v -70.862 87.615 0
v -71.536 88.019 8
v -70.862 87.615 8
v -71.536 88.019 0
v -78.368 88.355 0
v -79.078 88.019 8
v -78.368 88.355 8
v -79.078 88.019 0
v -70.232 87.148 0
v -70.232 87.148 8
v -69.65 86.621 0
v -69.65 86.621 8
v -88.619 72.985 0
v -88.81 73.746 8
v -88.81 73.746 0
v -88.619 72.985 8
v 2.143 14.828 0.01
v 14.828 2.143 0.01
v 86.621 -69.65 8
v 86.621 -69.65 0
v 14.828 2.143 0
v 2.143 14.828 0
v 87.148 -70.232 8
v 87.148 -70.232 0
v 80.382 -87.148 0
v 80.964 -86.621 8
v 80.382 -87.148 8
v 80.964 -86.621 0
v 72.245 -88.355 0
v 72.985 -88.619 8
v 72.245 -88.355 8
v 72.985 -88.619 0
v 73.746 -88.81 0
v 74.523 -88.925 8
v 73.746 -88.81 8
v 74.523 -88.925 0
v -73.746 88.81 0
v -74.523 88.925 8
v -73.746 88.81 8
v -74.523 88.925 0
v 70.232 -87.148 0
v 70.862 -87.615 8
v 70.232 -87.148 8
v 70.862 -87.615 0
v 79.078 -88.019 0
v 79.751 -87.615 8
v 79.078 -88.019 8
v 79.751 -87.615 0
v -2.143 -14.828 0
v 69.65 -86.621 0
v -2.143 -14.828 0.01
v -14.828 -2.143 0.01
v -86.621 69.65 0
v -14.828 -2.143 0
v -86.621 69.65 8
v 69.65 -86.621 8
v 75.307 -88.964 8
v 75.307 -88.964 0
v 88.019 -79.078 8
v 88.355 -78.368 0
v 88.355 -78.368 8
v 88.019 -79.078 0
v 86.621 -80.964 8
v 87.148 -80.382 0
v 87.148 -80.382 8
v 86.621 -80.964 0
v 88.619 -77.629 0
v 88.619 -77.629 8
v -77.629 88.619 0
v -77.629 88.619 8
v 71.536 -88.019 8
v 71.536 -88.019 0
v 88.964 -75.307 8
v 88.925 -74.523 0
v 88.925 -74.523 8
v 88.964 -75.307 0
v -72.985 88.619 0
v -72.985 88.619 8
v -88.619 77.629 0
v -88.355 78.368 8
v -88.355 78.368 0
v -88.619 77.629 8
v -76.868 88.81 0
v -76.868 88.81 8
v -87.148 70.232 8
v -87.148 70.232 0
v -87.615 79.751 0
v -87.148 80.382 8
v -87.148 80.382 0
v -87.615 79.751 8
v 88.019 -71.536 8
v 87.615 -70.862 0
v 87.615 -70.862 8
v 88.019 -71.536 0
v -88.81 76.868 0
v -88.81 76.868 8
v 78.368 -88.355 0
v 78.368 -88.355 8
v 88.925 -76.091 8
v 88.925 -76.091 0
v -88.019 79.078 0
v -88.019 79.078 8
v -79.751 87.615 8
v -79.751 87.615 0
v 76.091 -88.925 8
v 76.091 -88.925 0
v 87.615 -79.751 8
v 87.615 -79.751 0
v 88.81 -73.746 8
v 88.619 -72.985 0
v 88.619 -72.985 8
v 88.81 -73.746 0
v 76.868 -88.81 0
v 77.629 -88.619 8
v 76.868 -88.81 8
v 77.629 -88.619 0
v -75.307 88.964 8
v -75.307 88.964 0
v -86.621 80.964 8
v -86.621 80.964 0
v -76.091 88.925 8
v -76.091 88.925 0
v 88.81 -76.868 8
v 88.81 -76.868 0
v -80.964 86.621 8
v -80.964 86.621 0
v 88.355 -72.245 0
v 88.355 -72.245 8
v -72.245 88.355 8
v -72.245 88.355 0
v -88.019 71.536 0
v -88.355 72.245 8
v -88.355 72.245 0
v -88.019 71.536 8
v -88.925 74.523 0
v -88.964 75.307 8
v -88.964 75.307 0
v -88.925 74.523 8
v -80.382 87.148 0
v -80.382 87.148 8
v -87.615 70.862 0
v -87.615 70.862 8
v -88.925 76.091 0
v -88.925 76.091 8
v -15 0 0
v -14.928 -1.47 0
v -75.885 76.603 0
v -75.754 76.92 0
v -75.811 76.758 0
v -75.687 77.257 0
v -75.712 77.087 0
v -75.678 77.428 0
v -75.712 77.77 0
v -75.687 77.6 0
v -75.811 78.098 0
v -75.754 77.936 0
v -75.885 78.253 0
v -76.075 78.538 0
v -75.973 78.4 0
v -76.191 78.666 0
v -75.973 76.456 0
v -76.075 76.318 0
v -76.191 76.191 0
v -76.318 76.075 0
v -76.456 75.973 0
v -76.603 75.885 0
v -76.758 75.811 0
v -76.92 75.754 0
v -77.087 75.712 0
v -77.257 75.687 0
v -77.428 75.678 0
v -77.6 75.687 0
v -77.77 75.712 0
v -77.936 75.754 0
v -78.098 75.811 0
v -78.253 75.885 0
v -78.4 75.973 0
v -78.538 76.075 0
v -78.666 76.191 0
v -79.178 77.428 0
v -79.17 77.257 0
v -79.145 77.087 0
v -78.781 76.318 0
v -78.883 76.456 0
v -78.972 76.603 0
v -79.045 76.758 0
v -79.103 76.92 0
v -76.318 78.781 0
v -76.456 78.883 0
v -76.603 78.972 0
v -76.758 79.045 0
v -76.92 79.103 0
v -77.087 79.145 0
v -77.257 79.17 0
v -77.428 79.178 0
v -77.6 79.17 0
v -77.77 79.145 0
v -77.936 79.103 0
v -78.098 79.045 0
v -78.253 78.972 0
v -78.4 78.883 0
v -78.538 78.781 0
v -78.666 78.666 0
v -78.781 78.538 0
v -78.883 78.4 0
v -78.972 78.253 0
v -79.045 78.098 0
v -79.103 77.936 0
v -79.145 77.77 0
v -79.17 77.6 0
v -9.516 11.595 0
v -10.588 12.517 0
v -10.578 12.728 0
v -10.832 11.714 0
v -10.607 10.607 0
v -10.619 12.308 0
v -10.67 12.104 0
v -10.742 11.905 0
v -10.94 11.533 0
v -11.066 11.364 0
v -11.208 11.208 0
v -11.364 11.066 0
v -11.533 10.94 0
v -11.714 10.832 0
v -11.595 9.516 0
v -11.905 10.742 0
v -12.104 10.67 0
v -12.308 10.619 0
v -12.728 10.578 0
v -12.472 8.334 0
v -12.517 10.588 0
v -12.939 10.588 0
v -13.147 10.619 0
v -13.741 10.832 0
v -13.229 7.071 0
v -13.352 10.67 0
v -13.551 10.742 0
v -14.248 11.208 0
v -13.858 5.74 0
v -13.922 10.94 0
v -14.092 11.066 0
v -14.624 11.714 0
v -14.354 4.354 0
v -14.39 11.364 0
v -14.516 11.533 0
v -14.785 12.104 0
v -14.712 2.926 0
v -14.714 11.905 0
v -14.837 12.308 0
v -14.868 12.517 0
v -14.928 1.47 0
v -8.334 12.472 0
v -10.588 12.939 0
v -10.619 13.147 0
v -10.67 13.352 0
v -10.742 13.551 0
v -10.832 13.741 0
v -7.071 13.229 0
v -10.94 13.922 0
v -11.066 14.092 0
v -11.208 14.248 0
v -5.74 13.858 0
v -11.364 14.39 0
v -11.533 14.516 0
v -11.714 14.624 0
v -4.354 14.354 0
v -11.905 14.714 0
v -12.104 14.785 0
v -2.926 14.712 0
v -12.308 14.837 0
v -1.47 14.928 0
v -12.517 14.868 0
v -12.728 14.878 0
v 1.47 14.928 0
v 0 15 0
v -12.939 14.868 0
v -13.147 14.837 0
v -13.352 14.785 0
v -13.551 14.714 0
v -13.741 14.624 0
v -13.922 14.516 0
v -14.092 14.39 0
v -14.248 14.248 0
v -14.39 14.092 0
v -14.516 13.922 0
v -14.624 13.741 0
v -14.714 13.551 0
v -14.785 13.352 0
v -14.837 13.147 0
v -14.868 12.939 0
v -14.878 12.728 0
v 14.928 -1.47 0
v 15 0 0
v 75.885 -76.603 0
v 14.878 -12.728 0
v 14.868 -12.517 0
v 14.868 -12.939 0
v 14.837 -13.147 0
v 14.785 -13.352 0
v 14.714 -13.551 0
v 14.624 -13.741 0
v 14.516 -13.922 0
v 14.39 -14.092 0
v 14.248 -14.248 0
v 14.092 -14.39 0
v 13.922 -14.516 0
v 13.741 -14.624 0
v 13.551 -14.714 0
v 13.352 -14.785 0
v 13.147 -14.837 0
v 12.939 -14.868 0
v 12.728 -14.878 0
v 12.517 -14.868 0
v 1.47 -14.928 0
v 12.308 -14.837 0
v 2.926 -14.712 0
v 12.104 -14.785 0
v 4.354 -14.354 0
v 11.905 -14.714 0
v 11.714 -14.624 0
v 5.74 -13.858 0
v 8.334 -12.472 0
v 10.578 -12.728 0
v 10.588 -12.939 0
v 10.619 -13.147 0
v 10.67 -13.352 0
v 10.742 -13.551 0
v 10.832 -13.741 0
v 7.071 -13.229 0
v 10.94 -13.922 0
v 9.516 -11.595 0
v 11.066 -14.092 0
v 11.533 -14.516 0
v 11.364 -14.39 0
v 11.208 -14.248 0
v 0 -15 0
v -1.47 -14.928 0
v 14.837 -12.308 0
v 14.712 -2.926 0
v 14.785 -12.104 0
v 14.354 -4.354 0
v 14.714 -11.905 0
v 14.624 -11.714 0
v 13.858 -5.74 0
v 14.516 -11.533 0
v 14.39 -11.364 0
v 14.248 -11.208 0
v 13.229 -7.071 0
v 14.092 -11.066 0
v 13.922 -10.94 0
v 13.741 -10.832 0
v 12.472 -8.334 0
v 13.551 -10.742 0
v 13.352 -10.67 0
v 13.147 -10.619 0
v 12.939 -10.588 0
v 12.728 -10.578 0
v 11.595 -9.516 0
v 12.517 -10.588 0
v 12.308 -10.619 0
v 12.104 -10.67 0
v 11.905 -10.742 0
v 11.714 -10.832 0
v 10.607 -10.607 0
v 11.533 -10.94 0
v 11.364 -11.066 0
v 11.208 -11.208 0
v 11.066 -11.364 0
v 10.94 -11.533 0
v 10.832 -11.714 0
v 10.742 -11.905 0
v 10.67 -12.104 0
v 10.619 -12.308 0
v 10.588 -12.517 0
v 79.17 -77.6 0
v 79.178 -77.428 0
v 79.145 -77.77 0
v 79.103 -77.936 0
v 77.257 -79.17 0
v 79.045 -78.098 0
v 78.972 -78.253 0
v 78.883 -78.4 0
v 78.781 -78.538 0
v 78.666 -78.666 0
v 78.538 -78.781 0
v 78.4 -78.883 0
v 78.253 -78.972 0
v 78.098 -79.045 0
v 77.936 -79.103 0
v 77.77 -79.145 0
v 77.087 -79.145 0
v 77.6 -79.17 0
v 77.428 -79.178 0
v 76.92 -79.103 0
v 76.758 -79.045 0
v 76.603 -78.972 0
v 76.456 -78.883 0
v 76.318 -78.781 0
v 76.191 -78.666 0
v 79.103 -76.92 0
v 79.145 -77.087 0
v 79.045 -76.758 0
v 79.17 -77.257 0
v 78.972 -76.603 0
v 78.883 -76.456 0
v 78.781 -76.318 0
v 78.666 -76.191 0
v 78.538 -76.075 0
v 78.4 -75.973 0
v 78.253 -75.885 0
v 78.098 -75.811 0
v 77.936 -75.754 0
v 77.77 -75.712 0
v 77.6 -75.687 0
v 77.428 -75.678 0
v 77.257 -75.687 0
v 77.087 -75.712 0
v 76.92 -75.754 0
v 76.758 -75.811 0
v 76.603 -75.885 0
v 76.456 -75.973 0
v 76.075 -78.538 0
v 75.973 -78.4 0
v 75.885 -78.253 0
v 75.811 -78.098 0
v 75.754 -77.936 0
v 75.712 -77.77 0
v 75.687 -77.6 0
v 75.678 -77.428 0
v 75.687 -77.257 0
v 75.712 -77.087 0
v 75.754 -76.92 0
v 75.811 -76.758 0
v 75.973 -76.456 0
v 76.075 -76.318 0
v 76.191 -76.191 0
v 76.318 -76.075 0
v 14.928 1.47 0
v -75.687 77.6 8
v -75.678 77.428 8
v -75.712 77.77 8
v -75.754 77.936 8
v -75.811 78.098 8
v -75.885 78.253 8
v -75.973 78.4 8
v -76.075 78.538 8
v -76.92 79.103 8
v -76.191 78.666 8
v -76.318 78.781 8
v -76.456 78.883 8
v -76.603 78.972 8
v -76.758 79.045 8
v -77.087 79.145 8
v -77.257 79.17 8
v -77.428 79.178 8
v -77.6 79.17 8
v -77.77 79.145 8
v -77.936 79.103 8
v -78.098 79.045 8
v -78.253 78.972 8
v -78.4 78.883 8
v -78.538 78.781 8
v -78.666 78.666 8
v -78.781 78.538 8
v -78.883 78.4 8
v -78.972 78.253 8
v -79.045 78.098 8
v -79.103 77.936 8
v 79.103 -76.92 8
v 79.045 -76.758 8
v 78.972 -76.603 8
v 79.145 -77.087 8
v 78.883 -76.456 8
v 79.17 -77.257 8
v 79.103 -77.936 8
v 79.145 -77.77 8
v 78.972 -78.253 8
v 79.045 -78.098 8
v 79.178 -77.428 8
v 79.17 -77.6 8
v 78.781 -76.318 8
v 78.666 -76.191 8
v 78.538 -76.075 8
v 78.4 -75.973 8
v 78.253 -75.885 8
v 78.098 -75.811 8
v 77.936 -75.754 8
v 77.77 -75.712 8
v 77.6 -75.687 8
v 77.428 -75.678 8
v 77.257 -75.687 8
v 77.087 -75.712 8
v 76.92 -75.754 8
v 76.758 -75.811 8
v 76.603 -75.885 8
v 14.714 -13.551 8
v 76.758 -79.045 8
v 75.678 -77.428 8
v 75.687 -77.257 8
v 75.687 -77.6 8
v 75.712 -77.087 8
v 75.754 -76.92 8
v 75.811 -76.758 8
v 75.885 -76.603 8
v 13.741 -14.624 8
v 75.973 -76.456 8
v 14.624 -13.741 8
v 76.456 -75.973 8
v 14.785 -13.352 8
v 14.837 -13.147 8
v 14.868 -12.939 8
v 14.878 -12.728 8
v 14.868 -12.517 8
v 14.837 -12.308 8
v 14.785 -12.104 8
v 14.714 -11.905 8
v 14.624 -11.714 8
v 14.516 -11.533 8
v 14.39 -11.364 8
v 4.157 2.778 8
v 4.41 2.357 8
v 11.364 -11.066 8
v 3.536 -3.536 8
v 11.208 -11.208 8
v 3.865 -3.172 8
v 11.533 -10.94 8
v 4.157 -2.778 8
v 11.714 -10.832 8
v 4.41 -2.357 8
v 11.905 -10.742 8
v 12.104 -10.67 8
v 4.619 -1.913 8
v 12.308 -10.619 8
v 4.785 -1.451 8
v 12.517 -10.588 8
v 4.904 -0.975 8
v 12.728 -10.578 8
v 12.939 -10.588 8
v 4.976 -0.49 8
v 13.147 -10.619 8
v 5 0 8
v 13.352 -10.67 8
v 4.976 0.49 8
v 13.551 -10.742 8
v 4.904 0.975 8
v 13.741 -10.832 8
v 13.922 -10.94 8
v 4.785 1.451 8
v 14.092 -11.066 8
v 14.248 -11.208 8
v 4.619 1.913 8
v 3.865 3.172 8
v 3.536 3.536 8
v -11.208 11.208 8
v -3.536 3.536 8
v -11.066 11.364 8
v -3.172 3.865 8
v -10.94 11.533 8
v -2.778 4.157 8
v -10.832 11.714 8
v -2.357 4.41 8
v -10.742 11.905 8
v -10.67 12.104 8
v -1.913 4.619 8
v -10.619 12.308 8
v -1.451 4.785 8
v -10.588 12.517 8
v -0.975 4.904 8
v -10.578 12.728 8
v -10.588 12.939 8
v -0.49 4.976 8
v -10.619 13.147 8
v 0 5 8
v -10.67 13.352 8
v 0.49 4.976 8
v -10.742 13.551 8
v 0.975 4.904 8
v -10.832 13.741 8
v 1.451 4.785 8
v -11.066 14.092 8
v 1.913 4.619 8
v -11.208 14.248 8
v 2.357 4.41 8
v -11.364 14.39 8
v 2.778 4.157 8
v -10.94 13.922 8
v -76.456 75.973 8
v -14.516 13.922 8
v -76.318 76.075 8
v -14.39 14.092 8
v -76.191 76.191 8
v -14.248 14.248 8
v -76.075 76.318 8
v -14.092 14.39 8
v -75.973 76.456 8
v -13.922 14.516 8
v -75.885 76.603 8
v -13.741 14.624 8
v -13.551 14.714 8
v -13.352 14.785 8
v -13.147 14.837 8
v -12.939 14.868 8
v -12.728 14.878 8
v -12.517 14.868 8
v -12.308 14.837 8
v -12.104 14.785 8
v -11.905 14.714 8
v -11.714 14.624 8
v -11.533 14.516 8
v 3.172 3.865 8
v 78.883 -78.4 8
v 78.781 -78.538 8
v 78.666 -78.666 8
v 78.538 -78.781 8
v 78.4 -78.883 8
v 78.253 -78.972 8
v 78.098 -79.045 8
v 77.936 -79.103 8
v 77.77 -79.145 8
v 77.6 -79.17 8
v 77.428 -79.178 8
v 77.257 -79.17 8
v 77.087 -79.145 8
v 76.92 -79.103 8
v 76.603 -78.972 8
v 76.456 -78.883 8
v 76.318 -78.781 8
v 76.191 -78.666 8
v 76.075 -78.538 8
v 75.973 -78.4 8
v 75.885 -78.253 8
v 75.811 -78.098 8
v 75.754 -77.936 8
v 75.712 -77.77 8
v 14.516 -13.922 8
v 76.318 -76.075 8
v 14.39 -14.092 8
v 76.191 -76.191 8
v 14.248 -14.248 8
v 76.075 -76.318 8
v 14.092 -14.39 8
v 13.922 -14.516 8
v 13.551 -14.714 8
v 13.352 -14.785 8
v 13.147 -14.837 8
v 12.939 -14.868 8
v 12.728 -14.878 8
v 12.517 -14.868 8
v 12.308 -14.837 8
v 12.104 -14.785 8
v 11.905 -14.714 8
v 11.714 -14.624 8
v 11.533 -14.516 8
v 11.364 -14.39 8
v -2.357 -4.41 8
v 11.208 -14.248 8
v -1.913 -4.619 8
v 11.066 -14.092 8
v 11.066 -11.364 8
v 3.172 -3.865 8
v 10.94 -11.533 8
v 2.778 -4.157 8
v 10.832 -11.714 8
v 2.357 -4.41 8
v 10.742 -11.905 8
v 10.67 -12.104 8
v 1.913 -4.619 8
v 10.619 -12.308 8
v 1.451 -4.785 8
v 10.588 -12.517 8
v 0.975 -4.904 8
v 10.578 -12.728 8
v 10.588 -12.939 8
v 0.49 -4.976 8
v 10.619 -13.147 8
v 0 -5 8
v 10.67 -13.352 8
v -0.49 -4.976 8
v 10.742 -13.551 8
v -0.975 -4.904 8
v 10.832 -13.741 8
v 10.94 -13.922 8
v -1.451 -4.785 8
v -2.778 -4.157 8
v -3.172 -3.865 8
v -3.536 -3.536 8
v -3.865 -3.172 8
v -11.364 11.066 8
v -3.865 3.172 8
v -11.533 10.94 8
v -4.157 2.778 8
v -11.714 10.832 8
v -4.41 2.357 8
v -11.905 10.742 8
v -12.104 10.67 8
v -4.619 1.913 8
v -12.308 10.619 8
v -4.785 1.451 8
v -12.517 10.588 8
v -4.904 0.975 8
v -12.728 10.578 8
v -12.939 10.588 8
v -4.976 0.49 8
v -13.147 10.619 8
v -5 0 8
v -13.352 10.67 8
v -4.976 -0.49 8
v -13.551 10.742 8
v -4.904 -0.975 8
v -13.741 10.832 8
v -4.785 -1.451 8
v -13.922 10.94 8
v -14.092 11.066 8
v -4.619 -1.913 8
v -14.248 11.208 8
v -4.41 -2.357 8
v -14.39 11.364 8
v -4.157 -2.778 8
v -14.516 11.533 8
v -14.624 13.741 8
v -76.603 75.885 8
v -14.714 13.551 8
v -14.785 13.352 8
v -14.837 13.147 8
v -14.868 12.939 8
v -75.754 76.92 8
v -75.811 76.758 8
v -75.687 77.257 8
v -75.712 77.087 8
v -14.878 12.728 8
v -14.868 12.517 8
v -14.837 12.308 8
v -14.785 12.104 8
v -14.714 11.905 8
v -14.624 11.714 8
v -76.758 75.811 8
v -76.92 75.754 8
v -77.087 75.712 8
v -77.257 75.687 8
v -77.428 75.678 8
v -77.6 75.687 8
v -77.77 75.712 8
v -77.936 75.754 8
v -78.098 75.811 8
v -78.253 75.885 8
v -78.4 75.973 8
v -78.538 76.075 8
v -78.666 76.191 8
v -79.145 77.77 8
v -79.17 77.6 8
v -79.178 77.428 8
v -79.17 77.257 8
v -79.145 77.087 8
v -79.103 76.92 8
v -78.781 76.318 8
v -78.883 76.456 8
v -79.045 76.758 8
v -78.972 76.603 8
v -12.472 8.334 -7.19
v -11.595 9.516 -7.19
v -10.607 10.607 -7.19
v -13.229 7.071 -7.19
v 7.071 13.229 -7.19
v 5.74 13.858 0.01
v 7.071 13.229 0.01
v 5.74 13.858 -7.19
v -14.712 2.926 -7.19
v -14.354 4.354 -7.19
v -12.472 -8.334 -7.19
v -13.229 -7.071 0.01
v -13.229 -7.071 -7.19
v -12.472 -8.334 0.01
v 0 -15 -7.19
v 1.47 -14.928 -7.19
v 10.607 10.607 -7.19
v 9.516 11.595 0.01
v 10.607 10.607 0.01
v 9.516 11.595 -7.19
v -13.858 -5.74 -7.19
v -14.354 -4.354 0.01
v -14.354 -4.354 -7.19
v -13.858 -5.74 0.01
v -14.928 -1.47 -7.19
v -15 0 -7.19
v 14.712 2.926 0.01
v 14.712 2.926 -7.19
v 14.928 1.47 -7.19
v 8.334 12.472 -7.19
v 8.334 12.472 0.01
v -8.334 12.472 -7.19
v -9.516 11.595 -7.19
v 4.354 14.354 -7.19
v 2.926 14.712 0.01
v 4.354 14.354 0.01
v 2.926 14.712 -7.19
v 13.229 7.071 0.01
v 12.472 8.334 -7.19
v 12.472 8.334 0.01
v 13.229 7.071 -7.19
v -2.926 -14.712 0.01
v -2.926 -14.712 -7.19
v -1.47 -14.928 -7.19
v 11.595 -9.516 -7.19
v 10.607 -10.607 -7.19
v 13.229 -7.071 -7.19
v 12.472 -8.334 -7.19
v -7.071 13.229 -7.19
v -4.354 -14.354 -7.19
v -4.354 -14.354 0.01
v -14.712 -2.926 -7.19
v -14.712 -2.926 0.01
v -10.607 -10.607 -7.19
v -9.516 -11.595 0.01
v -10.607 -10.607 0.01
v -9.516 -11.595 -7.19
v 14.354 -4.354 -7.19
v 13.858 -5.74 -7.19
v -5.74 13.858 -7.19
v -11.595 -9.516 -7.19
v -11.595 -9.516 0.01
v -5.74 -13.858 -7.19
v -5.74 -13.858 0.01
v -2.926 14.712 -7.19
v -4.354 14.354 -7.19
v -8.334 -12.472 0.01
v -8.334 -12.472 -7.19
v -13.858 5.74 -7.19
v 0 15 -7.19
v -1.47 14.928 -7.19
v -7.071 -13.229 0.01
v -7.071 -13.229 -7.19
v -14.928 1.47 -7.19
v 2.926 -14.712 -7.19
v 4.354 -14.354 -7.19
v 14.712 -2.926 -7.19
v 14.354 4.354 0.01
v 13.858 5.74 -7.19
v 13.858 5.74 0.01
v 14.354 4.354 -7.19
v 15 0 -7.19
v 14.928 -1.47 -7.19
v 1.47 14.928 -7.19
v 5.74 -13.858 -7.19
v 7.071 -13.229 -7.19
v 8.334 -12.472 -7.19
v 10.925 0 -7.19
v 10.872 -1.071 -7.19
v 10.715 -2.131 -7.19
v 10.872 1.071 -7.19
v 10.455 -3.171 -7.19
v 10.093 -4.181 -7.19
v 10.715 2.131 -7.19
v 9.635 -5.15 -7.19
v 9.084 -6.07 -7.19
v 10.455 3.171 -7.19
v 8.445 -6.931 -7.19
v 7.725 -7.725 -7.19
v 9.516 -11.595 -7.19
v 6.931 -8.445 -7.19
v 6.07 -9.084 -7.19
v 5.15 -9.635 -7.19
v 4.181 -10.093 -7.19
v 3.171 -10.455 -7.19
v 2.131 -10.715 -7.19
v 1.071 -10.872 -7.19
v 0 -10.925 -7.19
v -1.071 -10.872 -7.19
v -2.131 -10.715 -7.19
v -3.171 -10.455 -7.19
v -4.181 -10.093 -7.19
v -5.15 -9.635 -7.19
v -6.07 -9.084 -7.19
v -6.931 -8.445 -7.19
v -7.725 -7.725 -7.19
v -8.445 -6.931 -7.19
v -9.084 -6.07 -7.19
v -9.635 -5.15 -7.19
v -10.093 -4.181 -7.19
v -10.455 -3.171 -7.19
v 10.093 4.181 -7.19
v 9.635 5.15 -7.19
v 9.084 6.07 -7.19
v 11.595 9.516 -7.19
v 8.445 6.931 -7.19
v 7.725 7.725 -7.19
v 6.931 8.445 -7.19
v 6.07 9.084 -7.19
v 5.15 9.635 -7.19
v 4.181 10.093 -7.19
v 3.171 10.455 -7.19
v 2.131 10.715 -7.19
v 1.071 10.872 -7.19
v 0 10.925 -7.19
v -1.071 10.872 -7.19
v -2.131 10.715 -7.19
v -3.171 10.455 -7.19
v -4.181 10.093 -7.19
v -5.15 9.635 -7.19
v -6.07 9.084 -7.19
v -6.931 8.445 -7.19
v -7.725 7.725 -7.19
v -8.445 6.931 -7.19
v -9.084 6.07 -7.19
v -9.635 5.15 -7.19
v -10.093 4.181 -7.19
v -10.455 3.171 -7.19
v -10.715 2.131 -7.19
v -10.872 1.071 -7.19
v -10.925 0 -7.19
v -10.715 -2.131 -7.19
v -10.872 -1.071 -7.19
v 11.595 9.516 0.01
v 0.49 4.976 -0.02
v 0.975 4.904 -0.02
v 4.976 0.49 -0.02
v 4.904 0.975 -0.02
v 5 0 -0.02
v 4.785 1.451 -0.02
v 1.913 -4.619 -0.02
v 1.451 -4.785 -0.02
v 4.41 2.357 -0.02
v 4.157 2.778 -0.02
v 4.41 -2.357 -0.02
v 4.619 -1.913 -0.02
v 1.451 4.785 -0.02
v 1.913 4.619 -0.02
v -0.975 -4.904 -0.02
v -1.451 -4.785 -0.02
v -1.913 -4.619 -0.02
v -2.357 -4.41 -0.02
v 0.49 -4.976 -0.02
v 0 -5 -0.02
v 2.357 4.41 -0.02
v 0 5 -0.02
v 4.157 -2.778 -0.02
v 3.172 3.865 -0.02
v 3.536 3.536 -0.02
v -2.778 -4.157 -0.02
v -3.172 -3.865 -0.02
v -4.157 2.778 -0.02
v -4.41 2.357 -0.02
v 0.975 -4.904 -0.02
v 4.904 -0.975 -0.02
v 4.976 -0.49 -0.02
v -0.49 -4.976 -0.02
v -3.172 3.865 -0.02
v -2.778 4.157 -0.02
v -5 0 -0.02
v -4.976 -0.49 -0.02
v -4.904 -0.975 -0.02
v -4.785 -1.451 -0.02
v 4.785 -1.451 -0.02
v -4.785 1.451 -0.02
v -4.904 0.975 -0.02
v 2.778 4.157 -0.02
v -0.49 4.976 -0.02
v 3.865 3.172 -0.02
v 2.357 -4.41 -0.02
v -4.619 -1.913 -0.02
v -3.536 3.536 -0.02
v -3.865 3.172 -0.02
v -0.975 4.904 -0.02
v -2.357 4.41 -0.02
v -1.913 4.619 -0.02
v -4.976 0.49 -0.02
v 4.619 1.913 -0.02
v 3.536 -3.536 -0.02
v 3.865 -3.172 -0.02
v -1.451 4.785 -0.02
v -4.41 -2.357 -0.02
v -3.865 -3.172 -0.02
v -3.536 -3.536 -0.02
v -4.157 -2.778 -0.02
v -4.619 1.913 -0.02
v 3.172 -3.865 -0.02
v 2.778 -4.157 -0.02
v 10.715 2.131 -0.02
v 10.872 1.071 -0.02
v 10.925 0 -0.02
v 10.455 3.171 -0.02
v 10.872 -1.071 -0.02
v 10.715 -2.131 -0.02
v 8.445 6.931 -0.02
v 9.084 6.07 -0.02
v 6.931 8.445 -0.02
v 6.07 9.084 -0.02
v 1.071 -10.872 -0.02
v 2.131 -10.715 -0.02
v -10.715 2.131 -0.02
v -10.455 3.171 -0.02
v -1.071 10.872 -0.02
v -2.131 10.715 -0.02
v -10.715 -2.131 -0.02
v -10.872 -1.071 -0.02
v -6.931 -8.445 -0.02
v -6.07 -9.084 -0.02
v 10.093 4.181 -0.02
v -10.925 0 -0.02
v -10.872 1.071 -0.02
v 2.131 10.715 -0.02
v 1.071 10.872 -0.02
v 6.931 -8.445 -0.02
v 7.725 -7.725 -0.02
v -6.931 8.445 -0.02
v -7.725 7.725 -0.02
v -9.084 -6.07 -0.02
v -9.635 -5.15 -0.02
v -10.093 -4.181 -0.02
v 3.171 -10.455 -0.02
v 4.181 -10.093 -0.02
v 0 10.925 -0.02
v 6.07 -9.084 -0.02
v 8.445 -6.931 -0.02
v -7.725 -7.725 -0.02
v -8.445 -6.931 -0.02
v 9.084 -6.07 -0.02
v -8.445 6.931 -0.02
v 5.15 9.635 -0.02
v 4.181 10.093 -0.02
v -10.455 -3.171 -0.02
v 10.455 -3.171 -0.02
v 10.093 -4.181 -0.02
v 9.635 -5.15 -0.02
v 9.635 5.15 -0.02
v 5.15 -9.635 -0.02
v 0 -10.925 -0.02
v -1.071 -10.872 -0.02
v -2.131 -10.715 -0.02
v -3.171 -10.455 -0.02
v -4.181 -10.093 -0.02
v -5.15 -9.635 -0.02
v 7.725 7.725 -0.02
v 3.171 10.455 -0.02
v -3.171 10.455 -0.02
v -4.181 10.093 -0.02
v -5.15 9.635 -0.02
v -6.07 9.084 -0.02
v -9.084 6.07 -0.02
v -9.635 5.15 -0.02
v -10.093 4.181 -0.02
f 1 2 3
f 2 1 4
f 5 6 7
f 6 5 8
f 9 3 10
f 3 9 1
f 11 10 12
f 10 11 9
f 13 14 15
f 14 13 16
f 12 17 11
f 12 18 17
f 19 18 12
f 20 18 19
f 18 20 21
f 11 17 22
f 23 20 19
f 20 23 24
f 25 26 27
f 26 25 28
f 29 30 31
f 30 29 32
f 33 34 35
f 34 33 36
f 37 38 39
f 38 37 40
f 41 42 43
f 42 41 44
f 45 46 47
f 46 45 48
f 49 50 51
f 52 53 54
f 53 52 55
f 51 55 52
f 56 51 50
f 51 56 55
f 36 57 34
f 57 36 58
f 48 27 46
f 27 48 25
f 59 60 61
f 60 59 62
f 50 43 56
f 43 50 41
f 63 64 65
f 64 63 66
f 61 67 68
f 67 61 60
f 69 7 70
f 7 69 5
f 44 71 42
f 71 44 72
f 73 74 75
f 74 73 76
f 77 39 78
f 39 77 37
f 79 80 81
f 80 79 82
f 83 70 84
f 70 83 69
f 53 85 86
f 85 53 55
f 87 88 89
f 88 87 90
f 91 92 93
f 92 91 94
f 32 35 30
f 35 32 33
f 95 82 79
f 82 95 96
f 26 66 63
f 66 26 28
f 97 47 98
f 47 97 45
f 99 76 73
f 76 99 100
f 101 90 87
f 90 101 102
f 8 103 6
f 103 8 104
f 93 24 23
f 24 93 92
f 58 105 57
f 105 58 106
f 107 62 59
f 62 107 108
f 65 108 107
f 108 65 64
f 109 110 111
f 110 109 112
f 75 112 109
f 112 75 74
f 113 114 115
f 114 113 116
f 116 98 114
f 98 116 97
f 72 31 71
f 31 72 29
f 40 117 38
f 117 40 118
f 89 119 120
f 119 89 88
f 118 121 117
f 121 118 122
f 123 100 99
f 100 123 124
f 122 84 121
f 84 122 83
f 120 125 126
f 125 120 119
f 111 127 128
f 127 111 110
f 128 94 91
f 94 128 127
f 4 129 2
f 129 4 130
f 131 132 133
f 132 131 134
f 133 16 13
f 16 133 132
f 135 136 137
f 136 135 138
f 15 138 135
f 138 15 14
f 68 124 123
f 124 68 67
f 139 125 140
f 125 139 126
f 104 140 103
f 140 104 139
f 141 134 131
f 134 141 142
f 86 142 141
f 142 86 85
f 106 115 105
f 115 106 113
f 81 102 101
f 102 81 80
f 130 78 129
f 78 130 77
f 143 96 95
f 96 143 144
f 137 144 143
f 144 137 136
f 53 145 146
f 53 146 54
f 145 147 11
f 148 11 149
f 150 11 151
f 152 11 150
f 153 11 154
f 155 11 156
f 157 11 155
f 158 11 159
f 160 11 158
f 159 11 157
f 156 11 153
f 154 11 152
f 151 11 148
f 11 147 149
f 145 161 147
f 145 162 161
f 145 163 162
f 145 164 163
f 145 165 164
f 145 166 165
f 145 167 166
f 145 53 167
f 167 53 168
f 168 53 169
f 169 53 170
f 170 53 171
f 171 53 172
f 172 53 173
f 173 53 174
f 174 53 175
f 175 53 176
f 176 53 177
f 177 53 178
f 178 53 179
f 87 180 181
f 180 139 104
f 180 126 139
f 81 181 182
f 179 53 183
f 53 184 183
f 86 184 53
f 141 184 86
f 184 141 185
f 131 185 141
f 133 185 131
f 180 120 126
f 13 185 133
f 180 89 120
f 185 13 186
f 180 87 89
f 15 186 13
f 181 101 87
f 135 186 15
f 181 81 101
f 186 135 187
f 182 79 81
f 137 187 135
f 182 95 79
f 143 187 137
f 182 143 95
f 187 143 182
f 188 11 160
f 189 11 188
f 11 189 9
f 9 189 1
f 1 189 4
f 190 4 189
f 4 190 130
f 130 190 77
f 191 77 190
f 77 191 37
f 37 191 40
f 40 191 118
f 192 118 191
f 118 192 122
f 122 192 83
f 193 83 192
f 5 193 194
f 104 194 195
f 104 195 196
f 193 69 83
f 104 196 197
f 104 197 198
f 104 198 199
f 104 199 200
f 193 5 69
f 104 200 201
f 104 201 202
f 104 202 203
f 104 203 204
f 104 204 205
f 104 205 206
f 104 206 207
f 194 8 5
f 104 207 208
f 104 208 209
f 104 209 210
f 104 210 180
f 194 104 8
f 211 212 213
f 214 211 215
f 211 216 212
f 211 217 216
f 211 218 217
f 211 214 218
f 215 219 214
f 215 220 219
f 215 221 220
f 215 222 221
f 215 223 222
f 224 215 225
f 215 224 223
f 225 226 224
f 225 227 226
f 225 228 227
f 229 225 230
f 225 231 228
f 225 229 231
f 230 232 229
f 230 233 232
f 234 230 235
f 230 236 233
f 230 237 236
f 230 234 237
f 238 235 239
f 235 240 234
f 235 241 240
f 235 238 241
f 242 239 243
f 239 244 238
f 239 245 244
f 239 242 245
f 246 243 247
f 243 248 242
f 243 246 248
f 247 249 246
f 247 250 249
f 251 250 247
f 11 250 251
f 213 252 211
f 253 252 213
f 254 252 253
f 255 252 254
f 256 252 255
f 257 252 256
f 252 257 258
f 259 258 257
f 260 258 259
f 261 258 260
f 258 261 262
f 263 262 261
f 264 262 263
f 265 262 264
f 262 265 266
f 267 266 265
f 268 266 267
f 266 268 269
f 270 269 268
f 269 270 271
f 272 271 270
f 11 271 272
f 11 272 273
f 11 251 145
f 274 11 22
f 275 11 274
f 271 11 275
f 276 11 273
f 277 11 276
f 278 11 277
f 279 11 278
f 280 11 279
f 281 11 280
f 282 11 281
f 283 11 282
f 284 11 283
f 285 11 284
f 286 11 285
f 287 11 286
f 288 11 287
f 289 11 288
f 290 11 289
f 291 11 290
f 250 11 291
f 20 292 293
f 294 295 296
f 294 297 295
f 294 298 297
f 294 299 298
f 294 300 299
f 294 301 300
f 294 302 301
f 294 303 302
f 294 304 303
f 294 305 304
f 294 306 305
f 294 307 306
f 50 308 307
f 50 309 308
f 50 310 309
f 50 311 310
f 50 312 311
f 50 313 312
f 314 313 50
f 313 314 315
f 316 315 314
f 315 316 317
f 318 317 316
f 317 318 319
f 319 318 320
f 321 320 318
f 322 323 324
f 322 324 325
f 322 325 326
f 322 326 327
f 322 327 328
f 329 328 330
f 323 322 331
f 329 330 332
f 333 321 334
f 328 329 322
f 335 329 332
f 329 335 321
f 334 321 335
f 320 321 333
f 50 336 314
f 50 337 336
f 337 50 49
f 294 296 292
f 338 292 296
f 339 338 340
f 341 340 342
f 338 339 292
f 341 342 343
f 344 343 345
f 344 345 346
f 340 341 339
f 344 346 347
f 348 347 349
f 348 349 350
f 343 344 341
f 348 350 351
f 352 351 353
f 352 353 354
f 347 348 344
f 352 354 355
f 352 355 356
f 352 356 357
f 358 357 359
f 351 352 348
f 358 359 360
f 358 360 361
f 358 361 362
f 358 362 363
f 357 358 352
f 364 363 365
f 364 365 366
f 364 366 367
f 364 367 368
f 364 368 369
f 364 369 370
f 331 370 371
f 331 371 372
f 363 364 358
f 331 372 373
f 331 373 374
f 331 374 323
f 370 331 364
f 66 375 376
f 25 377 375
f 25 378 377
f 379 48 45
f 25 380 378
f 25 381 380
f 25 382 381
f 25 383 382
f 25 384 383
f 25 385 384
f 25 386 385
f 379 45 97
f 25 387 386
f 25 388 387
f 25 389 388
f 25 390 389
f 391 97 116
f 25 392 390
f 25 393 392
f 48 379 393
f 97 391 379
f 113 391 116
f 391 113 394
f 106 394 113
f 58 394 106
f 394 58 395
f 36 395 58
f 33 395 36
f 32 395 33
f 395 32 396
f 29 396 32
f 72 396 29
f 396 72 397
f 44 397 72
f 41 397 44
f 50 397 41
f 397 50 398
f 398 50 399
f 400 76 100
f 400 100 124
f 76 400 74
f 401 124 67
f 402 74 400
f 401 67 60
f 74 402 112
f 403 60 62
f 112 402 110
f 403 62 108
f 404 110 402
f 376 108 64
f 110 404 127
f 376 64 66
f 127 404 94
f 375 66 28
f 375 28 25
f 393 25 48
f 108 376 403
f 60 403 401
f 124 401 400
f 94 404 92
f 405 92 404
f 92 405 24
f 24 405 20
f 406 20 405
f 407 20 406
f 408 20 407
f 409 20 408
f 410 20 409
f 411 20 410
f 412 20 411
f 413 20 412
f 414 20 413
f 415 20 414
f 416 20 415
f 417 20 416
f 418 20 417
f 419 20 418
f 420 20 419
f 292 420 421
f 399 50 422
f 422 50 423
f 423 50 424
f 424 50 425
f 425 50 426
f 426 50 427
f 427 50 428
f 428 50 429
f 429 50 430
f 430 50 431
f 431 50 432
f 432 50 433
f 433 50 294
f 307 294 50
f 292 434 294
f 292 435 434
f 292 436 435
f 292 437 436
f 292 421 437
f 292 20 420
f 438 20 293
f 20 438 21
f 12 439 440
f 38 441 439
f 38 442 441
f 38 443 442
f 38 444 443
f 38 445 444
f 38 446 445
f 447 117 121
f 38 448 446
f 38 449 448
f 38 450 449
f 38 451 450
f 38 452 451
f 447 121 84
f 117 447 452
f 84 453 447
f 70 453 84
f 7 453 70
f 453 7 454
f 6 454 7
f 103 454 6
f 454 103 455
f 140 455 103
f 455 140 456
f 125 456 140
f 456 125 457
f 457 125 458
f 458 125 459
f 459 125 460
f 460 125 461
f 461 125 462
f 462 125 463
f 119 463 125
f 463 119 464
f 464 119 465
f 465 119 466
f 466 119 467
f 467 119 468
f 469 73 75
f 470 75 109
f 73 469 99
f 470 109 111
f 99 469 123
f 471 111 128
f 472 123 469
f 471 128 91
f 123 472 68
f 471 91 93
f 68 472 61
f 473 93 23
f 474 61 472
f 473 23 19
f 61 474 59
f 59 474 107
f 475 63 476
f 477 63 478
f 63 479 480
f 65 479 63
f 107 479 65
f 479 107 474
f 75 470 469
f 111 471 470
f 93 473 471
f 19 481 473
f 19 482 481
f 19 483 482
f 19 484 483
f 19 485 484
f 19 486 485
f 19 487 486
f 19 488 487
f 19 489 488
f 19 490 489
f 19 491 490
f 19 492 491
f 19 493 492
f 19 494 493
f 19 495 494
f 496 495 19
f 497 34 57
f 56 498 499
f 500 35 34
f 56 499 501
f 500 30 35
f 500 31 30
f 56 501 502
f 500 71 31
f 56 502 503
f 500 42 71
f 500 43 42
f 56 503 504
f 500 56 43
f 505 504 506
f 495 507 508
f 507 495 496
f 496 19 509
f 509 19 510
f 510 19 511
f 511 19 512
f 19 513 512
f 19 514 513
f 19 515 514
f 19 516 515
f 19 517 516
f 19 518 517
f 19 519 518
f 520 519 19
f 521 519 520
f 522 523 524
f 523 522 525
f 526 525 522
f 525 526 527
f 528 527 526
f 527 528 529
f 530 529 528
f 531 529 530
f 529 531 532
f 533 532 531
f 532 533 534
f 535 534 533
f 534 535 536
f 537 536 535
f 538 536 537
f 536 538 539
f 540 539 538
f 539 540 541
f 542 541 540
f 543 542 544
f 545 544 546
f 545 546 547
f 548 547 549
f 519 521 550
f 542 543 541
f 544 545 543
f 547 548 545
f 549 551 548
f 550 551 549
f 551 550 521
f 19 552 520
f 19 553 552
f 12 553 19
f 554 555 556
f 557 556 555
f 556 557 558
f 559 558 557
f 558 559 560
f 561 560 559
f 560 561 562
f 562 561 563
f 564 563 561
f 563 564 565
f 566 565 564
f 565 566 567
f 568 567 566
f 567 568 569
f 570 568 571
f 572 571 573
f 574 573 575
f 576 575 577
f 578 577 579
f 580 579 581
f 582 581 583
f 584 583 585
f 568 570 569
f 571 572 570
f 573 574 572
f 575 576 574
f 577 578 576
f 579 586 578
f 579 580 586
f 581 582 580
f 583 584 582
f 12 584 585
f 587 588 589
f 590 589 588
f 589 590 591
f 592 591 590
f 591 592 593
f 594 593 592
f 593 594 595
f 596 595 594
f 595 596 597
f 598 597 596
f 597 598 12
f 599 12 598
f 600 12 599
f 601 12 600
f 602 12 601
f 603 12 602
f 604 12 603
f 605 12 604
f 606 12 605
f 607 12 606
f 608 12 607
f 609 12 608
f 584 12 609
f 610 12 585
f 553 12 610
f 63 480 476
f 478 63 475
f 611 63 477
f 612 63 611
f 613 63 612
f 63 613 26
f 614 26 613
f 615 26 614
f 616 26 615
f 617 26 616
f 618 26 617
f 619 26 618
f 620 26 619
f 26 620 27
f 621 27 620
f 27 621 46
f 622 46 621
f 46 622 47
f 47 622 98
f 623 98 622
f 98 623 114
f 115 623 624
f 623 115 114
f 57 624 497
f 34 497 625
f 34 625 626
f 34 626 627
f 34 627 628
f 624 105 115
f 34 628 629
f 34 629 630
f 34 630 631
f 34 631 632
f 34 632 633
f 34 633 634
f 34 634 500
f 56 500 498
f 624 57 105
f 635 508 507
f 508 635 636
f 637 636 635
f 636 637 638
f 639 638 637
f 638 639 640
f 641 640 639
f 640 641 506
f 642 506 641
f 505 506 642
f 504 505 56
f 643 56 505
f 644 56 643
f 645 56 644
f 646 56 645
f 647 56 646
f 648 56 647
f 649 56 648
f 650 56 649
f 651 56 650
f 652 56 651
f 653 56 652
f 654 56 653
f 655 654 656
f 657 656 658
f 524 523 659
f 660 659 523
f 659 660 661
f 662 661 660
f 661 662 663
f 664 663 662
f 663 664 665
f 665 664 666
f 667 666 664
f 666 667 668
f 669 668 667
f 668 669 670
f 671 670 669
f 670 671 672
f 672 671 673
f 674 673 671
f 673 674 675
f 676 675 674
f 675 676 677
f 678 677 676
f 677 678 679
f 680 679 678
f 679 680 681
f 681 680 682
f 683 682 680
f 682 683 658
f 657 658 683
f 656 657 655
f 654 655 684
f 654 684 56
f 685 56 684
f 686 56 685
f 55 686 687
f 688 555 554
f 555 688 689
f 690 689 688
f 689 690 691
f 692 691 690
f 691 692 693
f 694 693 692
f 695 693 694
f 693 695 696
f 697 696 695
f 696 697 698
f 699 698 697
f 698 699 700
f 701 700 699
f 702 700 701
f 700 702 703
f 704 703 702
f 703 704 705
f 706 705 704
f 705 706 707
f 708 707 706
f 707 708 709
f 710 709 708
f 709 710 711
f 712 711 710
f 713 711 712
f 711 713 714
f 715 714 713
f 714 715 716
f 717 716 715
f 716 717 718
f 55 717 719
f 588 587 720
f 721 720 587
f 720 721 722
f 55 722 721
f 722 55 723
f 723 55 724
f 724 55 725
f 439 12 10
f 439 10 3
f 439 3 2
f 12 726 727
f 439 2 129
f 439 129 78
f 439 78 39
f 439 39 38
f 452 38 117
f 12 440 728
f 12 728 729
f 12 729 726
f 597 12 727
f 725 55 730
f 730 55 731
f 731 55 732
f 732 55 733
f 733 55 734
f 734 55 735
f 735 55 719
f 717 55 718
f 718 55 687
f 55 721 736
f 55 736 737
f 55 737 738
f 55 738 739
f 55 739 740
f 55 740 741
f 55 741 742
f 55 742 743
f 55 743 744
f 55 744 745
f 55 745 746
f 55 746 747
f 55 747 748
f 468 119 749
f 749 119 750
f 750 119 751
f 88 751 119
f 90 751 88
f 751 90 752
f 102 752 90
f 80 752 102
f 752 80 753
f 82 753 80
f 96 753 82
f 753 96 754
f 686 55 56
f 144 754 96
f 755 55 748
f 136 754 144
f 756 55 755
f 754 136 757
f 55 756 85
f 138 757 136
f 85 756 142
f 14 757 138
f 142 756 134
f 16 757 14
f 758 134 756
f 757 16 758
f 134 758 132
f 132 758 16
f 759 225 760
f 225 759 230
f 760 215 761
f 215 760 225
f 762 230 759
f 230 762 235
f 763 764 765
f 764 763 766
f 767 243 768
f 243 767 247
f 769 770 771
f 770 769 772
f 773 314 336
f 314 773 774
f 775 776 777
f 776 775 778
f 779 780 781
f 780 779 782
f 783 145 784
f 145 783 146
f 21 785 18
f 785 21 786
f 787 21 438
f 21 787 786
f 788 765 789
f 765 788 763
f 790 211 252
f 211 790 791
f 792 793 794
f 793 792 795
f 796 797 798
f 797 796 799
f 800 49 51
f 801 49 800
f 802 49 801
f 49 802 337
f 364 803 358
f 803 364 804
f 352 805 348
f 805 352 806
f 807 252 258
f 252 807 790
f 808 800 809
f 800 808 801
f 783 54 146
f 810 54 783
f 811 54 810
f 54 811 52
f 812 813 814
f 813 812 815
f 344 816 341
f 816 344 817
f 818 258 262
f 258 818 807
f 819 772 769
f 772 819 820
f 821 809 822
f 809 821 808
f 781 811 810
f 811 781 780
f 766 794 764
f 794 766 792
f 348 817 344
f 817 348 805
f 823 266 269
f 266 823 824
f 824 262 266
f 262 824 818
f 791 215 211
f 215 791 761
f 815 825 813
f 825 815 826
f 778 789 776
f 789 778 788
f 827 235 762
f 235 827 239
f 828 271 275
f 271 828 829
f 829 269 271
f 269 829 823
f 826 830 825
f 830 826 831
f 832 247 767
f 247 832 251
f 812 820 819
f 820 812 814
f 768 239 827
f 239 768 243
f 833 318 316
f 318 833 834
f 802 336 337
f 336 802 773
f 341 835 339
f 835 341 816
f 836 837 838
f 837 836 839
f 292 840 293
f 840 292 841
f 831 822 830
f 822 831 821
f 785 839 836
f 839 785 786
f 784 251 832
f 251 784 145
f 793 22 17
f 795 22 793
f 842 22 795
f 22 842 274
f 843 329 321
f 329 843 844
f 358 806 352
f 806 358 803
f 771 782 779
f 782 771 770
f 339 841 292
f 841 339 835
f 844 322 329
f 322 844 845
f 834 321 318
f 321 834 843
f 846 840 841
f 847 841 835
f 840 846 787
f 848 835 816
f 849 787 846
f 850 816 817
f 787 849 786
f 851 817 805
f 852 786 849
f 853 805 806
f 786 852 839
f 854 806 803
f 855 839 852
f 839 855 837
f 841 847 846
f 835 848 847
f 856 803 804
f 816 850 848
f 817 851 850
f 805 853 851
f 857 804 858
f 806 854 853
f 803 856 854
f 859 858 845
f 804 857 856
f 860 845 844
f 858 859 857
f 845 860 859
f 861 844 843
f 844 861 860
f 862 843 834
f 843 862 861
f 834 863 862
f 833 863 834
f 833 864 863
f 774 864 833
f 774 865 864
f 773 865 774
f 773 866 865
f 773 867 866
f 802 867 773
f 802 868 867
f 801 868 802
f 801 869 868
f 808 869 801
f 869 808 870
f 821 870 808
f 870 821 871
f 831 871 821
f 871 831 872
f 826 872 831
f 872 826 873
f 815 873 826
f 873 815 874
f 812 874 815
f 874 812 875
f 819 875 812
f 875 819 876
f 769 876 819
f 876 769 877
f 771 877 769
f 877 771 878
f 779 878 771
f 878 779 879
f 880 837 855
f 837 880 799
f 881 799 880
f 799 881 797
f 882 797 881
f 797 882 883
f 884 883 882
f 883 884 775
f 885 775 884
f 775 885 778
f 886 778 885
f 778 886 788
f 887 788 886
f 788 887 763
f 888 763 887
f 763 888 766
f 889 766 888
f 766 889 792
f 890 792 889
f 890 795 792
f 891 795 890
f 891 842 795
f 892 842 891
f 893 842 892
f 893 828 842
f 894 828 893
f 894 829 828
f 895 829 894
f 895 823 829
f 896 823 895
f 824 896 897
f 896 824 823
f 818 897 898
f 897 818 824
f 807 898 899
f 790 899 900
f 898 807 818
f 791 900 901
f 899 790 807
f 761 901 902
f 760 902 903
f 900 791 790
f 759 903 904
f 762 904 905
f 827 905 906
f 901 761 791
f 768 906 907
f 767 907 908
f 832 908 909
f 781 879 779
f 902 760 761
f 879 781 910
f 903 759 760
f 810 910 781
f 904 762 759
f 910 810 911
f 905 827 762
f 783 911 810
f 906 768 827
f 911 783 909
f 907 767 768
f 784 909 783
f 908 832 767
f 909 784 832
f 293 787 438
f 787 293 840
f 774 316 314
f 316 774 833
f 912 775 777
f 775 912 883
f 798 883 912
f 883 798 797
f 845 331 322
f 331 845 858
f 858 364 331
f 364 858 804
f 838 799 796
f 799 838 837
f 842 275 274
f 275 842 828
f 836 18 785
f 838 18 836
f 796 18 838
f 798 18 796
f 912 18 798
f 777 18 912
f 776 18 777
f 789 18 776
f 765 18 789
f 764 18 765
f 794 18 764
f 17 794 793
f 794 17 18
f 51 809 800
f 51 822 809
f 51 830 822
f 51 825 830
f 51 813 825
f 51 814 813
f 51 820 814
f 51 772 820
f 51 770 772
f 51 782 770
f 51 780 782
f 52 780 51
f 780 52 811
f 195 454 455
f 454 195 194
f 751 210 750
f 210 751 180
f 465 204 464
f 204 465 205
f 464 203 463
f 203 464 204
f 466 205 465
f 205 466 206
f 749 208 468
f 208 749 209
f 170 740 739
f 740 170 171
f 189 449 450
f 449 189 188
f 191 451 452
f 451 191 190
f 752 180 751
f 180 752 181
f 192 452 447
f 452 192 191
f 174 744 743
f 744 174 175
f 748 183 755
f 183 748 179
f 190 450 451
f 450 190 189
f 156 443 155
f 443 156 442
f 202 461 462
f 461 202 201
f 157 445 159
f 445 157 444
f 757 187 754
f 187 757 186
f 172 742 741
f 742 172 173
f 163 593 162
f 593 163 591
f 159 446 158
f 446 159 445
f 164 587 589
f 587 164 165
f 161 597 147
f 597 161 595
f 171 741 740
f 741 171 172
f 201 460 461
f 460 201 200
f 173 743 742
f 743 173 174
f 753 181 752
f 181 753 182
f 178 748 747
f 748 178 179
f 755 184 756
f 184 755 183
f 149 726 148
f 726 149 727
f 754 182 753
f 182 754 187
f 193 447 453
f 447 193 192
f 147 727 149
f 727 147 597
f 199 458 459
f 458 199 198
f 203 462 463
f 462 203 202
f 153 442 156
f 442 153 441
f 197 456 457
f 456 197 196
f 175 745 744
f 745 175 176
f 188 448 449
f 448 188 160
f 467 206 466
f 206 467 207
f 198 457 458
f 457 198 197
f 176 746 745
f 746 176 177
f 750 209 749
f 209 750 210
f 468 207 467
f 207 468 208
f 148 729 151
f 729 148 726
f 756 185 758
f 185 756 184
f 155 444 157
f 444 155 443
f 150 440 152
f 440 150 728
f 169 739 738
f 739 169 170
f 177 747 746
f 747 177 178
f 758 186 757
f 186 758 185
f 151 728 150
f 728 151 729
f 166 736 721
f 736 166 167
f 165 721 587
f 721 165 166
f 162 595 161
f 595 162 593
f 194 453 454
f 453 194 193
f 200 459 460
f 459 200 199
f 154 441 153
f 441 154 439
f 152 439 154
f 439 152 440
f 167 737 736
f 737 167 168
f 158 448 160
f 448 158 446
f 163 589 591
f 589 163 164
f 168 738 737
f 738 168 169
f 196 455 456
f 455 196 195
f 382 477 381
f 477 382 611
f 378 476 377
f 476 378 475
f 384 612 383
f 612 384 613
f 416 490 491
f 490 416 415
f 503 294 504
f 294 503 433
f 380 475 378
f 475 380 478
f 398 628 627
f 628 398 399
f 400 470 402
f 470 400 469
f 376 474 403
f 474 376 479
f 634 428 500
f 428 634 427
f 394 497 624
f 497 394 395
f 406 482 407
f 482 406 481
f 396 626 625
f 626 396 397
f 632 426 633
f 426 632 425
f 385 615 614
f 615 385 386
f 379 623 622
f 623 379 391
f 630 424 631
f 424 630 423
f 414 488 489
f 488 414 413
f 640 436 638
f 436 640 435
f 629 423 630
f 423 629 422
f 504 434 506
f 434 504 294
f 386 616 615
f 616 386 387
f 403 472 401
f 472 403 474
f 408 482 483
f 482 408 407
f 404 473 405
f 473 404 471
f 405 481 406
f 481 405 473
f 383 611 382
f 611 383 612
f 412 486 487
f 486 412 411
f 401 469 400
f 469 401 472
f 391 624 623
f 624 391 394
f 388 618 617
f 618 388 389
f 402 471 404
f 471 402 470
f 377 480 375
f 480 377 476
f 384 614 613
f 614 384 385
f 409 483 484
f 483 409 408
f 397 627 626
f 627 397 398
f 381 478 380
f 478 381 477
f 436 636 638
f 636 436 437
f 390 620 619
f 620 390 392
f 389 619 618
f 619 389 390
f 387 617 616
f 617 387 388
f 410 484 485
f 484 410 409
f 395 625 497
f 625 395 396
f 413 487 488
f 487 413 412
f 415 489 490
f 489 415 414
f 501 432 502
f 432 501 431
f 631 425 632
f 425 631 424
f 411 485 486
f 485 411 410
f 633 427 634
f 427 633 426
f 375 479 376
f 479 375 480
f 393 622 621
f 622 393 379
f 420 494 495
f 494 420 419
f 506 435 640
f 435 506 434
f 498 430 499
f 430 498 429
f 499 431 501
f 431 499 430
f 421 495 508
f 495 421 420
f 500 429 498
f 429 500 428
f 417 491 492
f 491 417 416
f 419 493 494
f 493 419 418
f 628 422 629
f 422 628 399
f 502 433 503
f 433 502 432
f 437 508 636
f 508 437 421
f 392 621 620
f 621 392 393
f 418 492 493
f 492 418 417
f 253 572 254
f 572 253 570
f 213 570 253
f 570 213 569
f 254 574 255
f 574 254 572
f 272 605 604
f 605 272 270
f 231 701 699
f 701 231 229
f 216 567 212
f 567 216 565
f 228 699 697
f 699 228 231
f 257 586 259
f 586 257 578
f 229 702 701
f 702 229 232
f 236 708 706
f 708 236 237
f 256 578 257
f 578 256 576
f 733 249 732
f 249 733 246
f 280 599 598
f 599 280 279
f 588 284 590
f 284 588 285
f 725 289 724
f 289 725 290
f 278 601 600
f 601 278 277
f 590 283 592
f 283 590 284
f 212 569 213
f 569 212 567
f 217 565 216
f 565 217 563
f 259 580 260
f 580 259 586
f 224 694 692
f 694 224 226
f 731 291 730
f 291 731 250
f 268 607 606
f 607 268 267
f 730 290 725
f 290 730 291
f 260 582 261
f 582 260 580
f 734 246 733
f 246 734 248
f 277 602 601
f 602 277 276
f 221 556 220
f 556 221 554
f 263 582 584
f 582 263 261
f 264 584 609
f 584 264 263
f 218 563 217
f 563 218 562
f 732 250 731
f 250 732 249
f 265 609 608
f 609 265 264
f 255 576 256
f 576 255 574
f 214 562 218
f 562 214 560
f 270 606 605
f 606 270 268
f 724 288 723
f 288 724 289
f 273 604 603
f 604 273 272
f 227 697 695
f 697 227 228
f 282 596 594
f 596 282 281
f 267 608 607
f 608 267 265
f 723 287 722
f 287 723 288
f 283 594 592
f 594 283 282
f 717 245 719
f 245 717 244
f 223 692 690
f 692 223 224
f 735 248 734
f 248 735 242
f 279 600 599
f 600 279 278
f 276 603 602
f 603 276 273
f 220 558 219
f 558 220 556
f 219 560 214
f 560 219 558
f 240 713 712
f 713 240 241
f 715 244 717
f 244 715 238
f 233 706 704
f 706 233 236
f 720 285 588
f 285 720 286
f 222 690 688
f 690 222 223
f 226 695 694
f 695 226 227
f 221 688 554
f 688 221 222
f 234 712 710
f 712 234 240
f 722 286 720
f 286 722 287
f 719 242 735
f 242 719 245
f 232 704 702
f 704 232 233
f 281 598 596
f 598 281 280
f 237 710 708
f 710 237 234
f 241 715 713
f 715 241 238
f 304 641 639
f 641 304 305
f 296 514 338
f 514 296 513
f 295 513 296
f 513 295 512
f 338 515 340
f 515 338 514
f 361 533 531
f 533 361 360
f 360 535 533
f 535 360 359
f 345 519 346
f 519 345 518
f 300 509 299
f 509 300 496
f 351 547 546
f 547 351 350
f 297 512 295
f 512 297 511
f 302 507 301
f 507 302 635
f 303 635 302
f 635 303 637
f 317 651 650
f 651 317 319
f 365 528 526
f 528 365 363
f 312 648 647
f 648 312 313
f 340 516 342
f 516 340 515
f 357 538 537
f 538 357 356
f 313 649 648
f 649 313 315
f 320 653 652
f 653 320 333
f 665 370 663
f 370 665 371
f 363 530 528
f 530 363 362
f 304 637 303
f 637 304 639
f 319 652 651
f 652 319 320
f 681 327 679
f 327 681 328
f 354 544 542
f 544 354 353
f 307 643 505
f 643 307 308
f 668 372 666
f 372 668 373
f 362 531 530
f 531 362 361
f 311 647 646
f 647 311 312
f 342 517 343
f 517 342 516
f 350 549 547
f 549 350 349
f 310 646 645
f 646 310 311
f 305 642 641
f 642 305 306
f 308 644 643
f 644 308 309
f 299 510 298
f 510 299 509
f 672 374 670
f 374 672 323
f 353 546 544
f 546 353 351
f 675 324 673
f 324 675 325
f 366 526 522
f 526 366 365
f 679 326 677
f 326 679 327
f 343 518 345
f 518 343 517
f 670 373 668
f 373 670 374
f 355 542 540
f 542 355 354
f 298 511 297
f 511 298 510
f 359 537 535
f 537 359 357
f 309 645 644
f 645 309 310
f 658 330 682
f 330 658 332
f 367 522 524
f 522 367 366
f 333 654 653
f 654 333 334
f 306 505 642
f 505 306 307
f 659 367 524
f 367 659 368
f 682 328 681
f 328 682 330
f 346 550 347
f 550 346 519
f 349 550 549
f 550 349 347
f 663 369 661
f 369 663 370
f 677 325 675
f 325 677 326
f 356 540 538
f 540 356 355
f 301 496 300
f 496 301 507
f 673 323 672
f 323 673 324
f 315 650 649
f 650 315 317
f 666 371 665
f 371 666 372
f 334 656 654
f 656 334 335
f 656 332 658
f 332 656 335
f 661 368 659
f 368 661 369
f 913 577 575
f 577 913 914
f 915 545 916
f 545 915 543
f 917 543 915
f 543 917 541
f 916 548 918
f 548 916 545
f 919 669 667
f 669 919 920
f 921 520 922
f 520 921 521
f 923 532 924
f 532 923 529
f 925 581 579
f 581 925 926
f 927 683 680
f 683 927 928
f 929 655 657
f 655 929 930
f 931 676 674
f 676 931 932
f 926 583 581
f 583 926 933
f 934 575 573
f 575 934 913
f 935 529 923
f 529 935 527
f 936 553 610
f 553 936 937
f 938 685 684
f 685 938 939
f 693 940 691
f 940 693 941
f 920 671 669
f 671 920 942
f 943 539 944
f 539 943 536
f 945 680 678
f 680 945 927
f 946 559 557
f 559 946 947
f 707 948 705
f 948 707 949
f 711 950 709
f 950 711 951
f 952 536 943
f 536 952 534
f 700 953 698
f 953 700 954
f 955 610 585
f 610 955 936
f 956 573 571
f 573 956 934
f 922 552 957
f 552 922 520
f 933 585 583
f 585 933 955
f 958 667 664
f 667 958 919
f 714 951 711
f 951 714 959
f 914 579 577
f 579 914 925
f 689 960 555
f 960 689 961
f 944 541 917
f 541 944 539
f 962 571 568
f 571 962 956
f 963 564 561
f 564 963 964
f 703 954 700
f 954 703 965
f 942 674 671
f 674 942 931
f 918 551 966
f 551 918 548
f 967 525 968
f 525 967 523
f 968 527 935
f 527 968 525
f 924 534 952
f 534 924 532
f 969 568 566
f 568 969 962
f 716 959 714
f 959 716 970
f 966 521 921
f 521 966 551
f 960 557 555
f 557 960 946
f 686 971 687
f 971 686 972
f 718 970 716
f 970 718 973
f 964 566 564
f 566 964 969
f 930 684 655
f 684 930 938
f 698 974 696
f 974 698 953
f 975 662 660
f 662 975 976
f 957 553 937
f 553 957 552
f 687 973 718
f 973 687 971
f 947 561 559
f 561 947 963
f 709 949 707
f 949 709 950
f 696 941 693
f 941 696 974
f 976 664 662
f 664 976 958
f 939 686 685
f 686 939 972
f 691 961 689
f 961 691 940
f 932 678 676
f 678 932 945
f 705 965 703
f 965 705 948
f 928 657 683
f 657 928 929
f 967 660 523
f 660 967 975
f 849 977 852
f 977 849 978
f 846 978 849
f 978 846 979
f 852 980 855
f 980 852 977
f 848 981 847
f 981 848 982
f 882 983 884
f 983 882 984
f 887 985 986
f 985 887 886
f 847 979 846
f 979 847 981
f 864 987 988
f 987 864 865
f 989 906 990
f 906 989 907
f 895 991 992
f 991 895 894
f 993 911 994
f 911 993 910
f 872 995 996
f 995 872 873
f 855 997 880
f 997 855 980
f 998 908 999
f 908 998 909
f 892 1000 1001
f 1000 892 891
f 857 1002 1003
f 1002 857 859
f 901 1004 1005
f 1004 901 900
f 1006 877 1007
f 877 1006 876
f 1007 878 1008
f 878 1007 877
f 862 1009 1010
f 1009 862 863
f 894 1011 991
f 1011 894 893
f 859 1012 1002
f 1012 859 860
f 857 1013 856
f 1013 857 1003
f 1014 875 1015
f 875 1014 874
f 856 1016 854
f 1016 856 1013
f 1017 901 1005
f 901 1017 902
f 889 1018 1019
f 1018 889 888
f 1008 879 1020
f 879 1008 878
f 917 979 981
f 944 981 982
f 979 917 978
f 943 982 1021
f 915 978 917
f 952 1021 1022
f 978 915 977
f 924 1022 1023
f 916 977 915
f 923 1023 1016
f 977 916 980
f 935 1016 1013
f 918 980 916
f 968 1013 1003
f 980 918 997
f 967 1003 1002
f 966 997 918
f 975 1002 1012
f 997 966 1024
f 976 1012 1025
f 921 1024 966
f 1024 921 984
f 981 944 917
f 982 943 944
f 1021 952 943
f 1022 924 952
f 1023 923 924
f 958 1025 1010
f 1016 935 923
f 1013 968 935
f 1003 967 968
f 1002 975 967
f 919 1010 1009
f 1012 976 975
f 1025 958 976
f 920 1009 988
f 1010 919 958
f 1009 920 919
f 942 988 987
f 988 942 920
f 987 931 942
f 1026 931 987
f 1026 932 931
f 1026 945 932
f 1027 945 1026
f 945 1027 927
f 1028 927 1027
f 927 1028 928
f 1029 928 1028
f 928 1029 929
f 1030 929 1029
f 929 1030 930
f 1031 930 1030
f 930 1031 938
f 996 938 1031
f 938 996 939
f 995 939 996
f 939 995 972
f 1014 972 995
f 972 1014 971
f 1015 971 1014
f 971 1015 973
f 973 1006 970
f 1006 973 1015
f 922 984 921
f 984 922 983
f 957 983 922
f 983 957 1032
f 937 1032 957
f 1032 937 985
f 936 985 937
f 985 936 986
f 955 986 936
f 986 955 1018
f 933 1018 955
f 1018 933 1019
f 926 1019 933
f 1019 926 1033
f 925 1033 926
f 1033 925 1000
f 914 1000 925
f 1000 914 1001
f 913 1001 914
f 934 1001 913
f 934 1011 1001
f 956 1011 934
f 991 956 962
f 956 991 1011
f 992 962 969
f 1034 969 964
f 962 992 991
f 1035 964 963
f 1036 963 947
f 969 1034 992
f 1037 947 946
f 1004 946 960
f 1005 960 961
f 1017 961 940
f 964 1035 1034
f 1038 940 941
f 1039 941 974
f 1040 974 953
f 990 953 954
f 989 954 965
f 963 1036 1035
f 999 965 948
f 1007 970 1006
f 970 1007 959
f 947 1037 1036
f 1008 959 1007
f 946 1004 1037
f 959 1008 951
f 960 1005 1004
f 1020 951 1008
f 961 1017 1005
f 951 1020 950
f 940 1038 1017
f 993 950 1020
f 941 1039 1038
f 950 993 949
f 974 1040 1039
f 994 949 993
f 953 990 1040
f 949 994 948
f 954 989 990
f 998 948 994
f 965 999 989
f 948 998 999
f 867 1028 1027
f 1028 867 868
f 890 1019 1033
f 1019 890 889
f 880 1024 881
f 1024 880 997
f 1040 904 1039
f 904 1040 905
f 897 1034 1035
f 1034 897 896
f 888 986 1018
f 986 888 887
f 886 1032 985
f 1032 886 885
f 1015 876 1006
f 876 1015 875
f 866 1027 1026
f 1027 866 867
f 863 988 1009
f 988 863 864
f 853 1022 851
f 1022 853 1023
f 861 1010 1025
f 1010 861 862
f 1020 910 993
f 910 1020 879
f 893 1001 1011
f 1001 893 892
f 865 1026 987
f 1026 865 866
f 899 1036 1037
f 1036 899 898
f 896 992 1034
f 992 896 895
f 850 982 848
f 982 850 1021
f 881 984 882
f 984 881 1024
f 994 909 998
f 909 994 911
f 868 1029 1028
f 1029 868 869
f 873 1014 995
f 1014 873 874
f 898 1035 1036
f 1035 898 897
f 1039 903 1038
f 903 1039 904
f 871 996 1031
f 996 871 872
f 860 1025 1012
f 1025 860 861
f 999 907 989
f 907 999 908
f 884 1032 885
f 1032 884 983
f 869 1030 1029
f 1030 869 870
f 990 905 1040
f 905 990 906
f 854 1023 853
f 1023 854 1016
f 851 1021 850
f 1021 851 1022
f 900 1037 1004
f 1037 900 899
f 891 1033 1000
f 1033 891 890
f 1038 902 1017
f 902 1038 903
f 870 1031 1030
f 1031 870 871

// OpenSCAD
// Gen-CR — rear BEARING BRIDGE (bar endbell, 2026-10-10): a 608 boss on a 24 mm wide bar that spans the
// two frame rods at 135 deg and 135+180 deg (R = flange_bolt_r). The front bridge uses the rods at 45/225 deg, the rear
// bridge the rods at 135/315 deg, so the two bridges cross at 90 deg and the stator is held at 4 points.
// A bar instead of a full disc is what lets this big-ring kit fit ONE 410 mm plate. Print flat face DOWN (boss up, no supports).
// Brace holes (temporary M4 jack rods, R = brace_r) sit on the bar axis.
include <parameters.scad>;
$fn = 64;
bar_w = 24;
bar_len = 2 * (flange_bolt_r + 9);
module bar_2d() { offset(r=8) offset(delta=-8) square([bar_len, bar_w], center=true); }
difference() {
    rotate([0, 0, 135]) union() {
        linear_extrude(endbell_thick) bar_2d();
        translate([0, 0, -bearing_h + 0.01]) cylinder(d=30, h=bearing_h);
    }
    translate([0, 0, -bearing_h - 0.1]) cylinder(d=endbell_shaft_clear, h=50);
    translate([0, 0, -bearing_h - 0.02]) cylinder(d=bearing_d, h=bearing_h);
    for (s = [0, 180]) rotate([0, 0, 135 + s]) translate([flange_bolt_r, 0, -20]) cylinder(d=m3_clear, h=60);
    for (a = brace_angles) translate([brace_r*cos(a), brace_r*sin(a), -20]) cylinder(d=brace_d, h=50);
}
